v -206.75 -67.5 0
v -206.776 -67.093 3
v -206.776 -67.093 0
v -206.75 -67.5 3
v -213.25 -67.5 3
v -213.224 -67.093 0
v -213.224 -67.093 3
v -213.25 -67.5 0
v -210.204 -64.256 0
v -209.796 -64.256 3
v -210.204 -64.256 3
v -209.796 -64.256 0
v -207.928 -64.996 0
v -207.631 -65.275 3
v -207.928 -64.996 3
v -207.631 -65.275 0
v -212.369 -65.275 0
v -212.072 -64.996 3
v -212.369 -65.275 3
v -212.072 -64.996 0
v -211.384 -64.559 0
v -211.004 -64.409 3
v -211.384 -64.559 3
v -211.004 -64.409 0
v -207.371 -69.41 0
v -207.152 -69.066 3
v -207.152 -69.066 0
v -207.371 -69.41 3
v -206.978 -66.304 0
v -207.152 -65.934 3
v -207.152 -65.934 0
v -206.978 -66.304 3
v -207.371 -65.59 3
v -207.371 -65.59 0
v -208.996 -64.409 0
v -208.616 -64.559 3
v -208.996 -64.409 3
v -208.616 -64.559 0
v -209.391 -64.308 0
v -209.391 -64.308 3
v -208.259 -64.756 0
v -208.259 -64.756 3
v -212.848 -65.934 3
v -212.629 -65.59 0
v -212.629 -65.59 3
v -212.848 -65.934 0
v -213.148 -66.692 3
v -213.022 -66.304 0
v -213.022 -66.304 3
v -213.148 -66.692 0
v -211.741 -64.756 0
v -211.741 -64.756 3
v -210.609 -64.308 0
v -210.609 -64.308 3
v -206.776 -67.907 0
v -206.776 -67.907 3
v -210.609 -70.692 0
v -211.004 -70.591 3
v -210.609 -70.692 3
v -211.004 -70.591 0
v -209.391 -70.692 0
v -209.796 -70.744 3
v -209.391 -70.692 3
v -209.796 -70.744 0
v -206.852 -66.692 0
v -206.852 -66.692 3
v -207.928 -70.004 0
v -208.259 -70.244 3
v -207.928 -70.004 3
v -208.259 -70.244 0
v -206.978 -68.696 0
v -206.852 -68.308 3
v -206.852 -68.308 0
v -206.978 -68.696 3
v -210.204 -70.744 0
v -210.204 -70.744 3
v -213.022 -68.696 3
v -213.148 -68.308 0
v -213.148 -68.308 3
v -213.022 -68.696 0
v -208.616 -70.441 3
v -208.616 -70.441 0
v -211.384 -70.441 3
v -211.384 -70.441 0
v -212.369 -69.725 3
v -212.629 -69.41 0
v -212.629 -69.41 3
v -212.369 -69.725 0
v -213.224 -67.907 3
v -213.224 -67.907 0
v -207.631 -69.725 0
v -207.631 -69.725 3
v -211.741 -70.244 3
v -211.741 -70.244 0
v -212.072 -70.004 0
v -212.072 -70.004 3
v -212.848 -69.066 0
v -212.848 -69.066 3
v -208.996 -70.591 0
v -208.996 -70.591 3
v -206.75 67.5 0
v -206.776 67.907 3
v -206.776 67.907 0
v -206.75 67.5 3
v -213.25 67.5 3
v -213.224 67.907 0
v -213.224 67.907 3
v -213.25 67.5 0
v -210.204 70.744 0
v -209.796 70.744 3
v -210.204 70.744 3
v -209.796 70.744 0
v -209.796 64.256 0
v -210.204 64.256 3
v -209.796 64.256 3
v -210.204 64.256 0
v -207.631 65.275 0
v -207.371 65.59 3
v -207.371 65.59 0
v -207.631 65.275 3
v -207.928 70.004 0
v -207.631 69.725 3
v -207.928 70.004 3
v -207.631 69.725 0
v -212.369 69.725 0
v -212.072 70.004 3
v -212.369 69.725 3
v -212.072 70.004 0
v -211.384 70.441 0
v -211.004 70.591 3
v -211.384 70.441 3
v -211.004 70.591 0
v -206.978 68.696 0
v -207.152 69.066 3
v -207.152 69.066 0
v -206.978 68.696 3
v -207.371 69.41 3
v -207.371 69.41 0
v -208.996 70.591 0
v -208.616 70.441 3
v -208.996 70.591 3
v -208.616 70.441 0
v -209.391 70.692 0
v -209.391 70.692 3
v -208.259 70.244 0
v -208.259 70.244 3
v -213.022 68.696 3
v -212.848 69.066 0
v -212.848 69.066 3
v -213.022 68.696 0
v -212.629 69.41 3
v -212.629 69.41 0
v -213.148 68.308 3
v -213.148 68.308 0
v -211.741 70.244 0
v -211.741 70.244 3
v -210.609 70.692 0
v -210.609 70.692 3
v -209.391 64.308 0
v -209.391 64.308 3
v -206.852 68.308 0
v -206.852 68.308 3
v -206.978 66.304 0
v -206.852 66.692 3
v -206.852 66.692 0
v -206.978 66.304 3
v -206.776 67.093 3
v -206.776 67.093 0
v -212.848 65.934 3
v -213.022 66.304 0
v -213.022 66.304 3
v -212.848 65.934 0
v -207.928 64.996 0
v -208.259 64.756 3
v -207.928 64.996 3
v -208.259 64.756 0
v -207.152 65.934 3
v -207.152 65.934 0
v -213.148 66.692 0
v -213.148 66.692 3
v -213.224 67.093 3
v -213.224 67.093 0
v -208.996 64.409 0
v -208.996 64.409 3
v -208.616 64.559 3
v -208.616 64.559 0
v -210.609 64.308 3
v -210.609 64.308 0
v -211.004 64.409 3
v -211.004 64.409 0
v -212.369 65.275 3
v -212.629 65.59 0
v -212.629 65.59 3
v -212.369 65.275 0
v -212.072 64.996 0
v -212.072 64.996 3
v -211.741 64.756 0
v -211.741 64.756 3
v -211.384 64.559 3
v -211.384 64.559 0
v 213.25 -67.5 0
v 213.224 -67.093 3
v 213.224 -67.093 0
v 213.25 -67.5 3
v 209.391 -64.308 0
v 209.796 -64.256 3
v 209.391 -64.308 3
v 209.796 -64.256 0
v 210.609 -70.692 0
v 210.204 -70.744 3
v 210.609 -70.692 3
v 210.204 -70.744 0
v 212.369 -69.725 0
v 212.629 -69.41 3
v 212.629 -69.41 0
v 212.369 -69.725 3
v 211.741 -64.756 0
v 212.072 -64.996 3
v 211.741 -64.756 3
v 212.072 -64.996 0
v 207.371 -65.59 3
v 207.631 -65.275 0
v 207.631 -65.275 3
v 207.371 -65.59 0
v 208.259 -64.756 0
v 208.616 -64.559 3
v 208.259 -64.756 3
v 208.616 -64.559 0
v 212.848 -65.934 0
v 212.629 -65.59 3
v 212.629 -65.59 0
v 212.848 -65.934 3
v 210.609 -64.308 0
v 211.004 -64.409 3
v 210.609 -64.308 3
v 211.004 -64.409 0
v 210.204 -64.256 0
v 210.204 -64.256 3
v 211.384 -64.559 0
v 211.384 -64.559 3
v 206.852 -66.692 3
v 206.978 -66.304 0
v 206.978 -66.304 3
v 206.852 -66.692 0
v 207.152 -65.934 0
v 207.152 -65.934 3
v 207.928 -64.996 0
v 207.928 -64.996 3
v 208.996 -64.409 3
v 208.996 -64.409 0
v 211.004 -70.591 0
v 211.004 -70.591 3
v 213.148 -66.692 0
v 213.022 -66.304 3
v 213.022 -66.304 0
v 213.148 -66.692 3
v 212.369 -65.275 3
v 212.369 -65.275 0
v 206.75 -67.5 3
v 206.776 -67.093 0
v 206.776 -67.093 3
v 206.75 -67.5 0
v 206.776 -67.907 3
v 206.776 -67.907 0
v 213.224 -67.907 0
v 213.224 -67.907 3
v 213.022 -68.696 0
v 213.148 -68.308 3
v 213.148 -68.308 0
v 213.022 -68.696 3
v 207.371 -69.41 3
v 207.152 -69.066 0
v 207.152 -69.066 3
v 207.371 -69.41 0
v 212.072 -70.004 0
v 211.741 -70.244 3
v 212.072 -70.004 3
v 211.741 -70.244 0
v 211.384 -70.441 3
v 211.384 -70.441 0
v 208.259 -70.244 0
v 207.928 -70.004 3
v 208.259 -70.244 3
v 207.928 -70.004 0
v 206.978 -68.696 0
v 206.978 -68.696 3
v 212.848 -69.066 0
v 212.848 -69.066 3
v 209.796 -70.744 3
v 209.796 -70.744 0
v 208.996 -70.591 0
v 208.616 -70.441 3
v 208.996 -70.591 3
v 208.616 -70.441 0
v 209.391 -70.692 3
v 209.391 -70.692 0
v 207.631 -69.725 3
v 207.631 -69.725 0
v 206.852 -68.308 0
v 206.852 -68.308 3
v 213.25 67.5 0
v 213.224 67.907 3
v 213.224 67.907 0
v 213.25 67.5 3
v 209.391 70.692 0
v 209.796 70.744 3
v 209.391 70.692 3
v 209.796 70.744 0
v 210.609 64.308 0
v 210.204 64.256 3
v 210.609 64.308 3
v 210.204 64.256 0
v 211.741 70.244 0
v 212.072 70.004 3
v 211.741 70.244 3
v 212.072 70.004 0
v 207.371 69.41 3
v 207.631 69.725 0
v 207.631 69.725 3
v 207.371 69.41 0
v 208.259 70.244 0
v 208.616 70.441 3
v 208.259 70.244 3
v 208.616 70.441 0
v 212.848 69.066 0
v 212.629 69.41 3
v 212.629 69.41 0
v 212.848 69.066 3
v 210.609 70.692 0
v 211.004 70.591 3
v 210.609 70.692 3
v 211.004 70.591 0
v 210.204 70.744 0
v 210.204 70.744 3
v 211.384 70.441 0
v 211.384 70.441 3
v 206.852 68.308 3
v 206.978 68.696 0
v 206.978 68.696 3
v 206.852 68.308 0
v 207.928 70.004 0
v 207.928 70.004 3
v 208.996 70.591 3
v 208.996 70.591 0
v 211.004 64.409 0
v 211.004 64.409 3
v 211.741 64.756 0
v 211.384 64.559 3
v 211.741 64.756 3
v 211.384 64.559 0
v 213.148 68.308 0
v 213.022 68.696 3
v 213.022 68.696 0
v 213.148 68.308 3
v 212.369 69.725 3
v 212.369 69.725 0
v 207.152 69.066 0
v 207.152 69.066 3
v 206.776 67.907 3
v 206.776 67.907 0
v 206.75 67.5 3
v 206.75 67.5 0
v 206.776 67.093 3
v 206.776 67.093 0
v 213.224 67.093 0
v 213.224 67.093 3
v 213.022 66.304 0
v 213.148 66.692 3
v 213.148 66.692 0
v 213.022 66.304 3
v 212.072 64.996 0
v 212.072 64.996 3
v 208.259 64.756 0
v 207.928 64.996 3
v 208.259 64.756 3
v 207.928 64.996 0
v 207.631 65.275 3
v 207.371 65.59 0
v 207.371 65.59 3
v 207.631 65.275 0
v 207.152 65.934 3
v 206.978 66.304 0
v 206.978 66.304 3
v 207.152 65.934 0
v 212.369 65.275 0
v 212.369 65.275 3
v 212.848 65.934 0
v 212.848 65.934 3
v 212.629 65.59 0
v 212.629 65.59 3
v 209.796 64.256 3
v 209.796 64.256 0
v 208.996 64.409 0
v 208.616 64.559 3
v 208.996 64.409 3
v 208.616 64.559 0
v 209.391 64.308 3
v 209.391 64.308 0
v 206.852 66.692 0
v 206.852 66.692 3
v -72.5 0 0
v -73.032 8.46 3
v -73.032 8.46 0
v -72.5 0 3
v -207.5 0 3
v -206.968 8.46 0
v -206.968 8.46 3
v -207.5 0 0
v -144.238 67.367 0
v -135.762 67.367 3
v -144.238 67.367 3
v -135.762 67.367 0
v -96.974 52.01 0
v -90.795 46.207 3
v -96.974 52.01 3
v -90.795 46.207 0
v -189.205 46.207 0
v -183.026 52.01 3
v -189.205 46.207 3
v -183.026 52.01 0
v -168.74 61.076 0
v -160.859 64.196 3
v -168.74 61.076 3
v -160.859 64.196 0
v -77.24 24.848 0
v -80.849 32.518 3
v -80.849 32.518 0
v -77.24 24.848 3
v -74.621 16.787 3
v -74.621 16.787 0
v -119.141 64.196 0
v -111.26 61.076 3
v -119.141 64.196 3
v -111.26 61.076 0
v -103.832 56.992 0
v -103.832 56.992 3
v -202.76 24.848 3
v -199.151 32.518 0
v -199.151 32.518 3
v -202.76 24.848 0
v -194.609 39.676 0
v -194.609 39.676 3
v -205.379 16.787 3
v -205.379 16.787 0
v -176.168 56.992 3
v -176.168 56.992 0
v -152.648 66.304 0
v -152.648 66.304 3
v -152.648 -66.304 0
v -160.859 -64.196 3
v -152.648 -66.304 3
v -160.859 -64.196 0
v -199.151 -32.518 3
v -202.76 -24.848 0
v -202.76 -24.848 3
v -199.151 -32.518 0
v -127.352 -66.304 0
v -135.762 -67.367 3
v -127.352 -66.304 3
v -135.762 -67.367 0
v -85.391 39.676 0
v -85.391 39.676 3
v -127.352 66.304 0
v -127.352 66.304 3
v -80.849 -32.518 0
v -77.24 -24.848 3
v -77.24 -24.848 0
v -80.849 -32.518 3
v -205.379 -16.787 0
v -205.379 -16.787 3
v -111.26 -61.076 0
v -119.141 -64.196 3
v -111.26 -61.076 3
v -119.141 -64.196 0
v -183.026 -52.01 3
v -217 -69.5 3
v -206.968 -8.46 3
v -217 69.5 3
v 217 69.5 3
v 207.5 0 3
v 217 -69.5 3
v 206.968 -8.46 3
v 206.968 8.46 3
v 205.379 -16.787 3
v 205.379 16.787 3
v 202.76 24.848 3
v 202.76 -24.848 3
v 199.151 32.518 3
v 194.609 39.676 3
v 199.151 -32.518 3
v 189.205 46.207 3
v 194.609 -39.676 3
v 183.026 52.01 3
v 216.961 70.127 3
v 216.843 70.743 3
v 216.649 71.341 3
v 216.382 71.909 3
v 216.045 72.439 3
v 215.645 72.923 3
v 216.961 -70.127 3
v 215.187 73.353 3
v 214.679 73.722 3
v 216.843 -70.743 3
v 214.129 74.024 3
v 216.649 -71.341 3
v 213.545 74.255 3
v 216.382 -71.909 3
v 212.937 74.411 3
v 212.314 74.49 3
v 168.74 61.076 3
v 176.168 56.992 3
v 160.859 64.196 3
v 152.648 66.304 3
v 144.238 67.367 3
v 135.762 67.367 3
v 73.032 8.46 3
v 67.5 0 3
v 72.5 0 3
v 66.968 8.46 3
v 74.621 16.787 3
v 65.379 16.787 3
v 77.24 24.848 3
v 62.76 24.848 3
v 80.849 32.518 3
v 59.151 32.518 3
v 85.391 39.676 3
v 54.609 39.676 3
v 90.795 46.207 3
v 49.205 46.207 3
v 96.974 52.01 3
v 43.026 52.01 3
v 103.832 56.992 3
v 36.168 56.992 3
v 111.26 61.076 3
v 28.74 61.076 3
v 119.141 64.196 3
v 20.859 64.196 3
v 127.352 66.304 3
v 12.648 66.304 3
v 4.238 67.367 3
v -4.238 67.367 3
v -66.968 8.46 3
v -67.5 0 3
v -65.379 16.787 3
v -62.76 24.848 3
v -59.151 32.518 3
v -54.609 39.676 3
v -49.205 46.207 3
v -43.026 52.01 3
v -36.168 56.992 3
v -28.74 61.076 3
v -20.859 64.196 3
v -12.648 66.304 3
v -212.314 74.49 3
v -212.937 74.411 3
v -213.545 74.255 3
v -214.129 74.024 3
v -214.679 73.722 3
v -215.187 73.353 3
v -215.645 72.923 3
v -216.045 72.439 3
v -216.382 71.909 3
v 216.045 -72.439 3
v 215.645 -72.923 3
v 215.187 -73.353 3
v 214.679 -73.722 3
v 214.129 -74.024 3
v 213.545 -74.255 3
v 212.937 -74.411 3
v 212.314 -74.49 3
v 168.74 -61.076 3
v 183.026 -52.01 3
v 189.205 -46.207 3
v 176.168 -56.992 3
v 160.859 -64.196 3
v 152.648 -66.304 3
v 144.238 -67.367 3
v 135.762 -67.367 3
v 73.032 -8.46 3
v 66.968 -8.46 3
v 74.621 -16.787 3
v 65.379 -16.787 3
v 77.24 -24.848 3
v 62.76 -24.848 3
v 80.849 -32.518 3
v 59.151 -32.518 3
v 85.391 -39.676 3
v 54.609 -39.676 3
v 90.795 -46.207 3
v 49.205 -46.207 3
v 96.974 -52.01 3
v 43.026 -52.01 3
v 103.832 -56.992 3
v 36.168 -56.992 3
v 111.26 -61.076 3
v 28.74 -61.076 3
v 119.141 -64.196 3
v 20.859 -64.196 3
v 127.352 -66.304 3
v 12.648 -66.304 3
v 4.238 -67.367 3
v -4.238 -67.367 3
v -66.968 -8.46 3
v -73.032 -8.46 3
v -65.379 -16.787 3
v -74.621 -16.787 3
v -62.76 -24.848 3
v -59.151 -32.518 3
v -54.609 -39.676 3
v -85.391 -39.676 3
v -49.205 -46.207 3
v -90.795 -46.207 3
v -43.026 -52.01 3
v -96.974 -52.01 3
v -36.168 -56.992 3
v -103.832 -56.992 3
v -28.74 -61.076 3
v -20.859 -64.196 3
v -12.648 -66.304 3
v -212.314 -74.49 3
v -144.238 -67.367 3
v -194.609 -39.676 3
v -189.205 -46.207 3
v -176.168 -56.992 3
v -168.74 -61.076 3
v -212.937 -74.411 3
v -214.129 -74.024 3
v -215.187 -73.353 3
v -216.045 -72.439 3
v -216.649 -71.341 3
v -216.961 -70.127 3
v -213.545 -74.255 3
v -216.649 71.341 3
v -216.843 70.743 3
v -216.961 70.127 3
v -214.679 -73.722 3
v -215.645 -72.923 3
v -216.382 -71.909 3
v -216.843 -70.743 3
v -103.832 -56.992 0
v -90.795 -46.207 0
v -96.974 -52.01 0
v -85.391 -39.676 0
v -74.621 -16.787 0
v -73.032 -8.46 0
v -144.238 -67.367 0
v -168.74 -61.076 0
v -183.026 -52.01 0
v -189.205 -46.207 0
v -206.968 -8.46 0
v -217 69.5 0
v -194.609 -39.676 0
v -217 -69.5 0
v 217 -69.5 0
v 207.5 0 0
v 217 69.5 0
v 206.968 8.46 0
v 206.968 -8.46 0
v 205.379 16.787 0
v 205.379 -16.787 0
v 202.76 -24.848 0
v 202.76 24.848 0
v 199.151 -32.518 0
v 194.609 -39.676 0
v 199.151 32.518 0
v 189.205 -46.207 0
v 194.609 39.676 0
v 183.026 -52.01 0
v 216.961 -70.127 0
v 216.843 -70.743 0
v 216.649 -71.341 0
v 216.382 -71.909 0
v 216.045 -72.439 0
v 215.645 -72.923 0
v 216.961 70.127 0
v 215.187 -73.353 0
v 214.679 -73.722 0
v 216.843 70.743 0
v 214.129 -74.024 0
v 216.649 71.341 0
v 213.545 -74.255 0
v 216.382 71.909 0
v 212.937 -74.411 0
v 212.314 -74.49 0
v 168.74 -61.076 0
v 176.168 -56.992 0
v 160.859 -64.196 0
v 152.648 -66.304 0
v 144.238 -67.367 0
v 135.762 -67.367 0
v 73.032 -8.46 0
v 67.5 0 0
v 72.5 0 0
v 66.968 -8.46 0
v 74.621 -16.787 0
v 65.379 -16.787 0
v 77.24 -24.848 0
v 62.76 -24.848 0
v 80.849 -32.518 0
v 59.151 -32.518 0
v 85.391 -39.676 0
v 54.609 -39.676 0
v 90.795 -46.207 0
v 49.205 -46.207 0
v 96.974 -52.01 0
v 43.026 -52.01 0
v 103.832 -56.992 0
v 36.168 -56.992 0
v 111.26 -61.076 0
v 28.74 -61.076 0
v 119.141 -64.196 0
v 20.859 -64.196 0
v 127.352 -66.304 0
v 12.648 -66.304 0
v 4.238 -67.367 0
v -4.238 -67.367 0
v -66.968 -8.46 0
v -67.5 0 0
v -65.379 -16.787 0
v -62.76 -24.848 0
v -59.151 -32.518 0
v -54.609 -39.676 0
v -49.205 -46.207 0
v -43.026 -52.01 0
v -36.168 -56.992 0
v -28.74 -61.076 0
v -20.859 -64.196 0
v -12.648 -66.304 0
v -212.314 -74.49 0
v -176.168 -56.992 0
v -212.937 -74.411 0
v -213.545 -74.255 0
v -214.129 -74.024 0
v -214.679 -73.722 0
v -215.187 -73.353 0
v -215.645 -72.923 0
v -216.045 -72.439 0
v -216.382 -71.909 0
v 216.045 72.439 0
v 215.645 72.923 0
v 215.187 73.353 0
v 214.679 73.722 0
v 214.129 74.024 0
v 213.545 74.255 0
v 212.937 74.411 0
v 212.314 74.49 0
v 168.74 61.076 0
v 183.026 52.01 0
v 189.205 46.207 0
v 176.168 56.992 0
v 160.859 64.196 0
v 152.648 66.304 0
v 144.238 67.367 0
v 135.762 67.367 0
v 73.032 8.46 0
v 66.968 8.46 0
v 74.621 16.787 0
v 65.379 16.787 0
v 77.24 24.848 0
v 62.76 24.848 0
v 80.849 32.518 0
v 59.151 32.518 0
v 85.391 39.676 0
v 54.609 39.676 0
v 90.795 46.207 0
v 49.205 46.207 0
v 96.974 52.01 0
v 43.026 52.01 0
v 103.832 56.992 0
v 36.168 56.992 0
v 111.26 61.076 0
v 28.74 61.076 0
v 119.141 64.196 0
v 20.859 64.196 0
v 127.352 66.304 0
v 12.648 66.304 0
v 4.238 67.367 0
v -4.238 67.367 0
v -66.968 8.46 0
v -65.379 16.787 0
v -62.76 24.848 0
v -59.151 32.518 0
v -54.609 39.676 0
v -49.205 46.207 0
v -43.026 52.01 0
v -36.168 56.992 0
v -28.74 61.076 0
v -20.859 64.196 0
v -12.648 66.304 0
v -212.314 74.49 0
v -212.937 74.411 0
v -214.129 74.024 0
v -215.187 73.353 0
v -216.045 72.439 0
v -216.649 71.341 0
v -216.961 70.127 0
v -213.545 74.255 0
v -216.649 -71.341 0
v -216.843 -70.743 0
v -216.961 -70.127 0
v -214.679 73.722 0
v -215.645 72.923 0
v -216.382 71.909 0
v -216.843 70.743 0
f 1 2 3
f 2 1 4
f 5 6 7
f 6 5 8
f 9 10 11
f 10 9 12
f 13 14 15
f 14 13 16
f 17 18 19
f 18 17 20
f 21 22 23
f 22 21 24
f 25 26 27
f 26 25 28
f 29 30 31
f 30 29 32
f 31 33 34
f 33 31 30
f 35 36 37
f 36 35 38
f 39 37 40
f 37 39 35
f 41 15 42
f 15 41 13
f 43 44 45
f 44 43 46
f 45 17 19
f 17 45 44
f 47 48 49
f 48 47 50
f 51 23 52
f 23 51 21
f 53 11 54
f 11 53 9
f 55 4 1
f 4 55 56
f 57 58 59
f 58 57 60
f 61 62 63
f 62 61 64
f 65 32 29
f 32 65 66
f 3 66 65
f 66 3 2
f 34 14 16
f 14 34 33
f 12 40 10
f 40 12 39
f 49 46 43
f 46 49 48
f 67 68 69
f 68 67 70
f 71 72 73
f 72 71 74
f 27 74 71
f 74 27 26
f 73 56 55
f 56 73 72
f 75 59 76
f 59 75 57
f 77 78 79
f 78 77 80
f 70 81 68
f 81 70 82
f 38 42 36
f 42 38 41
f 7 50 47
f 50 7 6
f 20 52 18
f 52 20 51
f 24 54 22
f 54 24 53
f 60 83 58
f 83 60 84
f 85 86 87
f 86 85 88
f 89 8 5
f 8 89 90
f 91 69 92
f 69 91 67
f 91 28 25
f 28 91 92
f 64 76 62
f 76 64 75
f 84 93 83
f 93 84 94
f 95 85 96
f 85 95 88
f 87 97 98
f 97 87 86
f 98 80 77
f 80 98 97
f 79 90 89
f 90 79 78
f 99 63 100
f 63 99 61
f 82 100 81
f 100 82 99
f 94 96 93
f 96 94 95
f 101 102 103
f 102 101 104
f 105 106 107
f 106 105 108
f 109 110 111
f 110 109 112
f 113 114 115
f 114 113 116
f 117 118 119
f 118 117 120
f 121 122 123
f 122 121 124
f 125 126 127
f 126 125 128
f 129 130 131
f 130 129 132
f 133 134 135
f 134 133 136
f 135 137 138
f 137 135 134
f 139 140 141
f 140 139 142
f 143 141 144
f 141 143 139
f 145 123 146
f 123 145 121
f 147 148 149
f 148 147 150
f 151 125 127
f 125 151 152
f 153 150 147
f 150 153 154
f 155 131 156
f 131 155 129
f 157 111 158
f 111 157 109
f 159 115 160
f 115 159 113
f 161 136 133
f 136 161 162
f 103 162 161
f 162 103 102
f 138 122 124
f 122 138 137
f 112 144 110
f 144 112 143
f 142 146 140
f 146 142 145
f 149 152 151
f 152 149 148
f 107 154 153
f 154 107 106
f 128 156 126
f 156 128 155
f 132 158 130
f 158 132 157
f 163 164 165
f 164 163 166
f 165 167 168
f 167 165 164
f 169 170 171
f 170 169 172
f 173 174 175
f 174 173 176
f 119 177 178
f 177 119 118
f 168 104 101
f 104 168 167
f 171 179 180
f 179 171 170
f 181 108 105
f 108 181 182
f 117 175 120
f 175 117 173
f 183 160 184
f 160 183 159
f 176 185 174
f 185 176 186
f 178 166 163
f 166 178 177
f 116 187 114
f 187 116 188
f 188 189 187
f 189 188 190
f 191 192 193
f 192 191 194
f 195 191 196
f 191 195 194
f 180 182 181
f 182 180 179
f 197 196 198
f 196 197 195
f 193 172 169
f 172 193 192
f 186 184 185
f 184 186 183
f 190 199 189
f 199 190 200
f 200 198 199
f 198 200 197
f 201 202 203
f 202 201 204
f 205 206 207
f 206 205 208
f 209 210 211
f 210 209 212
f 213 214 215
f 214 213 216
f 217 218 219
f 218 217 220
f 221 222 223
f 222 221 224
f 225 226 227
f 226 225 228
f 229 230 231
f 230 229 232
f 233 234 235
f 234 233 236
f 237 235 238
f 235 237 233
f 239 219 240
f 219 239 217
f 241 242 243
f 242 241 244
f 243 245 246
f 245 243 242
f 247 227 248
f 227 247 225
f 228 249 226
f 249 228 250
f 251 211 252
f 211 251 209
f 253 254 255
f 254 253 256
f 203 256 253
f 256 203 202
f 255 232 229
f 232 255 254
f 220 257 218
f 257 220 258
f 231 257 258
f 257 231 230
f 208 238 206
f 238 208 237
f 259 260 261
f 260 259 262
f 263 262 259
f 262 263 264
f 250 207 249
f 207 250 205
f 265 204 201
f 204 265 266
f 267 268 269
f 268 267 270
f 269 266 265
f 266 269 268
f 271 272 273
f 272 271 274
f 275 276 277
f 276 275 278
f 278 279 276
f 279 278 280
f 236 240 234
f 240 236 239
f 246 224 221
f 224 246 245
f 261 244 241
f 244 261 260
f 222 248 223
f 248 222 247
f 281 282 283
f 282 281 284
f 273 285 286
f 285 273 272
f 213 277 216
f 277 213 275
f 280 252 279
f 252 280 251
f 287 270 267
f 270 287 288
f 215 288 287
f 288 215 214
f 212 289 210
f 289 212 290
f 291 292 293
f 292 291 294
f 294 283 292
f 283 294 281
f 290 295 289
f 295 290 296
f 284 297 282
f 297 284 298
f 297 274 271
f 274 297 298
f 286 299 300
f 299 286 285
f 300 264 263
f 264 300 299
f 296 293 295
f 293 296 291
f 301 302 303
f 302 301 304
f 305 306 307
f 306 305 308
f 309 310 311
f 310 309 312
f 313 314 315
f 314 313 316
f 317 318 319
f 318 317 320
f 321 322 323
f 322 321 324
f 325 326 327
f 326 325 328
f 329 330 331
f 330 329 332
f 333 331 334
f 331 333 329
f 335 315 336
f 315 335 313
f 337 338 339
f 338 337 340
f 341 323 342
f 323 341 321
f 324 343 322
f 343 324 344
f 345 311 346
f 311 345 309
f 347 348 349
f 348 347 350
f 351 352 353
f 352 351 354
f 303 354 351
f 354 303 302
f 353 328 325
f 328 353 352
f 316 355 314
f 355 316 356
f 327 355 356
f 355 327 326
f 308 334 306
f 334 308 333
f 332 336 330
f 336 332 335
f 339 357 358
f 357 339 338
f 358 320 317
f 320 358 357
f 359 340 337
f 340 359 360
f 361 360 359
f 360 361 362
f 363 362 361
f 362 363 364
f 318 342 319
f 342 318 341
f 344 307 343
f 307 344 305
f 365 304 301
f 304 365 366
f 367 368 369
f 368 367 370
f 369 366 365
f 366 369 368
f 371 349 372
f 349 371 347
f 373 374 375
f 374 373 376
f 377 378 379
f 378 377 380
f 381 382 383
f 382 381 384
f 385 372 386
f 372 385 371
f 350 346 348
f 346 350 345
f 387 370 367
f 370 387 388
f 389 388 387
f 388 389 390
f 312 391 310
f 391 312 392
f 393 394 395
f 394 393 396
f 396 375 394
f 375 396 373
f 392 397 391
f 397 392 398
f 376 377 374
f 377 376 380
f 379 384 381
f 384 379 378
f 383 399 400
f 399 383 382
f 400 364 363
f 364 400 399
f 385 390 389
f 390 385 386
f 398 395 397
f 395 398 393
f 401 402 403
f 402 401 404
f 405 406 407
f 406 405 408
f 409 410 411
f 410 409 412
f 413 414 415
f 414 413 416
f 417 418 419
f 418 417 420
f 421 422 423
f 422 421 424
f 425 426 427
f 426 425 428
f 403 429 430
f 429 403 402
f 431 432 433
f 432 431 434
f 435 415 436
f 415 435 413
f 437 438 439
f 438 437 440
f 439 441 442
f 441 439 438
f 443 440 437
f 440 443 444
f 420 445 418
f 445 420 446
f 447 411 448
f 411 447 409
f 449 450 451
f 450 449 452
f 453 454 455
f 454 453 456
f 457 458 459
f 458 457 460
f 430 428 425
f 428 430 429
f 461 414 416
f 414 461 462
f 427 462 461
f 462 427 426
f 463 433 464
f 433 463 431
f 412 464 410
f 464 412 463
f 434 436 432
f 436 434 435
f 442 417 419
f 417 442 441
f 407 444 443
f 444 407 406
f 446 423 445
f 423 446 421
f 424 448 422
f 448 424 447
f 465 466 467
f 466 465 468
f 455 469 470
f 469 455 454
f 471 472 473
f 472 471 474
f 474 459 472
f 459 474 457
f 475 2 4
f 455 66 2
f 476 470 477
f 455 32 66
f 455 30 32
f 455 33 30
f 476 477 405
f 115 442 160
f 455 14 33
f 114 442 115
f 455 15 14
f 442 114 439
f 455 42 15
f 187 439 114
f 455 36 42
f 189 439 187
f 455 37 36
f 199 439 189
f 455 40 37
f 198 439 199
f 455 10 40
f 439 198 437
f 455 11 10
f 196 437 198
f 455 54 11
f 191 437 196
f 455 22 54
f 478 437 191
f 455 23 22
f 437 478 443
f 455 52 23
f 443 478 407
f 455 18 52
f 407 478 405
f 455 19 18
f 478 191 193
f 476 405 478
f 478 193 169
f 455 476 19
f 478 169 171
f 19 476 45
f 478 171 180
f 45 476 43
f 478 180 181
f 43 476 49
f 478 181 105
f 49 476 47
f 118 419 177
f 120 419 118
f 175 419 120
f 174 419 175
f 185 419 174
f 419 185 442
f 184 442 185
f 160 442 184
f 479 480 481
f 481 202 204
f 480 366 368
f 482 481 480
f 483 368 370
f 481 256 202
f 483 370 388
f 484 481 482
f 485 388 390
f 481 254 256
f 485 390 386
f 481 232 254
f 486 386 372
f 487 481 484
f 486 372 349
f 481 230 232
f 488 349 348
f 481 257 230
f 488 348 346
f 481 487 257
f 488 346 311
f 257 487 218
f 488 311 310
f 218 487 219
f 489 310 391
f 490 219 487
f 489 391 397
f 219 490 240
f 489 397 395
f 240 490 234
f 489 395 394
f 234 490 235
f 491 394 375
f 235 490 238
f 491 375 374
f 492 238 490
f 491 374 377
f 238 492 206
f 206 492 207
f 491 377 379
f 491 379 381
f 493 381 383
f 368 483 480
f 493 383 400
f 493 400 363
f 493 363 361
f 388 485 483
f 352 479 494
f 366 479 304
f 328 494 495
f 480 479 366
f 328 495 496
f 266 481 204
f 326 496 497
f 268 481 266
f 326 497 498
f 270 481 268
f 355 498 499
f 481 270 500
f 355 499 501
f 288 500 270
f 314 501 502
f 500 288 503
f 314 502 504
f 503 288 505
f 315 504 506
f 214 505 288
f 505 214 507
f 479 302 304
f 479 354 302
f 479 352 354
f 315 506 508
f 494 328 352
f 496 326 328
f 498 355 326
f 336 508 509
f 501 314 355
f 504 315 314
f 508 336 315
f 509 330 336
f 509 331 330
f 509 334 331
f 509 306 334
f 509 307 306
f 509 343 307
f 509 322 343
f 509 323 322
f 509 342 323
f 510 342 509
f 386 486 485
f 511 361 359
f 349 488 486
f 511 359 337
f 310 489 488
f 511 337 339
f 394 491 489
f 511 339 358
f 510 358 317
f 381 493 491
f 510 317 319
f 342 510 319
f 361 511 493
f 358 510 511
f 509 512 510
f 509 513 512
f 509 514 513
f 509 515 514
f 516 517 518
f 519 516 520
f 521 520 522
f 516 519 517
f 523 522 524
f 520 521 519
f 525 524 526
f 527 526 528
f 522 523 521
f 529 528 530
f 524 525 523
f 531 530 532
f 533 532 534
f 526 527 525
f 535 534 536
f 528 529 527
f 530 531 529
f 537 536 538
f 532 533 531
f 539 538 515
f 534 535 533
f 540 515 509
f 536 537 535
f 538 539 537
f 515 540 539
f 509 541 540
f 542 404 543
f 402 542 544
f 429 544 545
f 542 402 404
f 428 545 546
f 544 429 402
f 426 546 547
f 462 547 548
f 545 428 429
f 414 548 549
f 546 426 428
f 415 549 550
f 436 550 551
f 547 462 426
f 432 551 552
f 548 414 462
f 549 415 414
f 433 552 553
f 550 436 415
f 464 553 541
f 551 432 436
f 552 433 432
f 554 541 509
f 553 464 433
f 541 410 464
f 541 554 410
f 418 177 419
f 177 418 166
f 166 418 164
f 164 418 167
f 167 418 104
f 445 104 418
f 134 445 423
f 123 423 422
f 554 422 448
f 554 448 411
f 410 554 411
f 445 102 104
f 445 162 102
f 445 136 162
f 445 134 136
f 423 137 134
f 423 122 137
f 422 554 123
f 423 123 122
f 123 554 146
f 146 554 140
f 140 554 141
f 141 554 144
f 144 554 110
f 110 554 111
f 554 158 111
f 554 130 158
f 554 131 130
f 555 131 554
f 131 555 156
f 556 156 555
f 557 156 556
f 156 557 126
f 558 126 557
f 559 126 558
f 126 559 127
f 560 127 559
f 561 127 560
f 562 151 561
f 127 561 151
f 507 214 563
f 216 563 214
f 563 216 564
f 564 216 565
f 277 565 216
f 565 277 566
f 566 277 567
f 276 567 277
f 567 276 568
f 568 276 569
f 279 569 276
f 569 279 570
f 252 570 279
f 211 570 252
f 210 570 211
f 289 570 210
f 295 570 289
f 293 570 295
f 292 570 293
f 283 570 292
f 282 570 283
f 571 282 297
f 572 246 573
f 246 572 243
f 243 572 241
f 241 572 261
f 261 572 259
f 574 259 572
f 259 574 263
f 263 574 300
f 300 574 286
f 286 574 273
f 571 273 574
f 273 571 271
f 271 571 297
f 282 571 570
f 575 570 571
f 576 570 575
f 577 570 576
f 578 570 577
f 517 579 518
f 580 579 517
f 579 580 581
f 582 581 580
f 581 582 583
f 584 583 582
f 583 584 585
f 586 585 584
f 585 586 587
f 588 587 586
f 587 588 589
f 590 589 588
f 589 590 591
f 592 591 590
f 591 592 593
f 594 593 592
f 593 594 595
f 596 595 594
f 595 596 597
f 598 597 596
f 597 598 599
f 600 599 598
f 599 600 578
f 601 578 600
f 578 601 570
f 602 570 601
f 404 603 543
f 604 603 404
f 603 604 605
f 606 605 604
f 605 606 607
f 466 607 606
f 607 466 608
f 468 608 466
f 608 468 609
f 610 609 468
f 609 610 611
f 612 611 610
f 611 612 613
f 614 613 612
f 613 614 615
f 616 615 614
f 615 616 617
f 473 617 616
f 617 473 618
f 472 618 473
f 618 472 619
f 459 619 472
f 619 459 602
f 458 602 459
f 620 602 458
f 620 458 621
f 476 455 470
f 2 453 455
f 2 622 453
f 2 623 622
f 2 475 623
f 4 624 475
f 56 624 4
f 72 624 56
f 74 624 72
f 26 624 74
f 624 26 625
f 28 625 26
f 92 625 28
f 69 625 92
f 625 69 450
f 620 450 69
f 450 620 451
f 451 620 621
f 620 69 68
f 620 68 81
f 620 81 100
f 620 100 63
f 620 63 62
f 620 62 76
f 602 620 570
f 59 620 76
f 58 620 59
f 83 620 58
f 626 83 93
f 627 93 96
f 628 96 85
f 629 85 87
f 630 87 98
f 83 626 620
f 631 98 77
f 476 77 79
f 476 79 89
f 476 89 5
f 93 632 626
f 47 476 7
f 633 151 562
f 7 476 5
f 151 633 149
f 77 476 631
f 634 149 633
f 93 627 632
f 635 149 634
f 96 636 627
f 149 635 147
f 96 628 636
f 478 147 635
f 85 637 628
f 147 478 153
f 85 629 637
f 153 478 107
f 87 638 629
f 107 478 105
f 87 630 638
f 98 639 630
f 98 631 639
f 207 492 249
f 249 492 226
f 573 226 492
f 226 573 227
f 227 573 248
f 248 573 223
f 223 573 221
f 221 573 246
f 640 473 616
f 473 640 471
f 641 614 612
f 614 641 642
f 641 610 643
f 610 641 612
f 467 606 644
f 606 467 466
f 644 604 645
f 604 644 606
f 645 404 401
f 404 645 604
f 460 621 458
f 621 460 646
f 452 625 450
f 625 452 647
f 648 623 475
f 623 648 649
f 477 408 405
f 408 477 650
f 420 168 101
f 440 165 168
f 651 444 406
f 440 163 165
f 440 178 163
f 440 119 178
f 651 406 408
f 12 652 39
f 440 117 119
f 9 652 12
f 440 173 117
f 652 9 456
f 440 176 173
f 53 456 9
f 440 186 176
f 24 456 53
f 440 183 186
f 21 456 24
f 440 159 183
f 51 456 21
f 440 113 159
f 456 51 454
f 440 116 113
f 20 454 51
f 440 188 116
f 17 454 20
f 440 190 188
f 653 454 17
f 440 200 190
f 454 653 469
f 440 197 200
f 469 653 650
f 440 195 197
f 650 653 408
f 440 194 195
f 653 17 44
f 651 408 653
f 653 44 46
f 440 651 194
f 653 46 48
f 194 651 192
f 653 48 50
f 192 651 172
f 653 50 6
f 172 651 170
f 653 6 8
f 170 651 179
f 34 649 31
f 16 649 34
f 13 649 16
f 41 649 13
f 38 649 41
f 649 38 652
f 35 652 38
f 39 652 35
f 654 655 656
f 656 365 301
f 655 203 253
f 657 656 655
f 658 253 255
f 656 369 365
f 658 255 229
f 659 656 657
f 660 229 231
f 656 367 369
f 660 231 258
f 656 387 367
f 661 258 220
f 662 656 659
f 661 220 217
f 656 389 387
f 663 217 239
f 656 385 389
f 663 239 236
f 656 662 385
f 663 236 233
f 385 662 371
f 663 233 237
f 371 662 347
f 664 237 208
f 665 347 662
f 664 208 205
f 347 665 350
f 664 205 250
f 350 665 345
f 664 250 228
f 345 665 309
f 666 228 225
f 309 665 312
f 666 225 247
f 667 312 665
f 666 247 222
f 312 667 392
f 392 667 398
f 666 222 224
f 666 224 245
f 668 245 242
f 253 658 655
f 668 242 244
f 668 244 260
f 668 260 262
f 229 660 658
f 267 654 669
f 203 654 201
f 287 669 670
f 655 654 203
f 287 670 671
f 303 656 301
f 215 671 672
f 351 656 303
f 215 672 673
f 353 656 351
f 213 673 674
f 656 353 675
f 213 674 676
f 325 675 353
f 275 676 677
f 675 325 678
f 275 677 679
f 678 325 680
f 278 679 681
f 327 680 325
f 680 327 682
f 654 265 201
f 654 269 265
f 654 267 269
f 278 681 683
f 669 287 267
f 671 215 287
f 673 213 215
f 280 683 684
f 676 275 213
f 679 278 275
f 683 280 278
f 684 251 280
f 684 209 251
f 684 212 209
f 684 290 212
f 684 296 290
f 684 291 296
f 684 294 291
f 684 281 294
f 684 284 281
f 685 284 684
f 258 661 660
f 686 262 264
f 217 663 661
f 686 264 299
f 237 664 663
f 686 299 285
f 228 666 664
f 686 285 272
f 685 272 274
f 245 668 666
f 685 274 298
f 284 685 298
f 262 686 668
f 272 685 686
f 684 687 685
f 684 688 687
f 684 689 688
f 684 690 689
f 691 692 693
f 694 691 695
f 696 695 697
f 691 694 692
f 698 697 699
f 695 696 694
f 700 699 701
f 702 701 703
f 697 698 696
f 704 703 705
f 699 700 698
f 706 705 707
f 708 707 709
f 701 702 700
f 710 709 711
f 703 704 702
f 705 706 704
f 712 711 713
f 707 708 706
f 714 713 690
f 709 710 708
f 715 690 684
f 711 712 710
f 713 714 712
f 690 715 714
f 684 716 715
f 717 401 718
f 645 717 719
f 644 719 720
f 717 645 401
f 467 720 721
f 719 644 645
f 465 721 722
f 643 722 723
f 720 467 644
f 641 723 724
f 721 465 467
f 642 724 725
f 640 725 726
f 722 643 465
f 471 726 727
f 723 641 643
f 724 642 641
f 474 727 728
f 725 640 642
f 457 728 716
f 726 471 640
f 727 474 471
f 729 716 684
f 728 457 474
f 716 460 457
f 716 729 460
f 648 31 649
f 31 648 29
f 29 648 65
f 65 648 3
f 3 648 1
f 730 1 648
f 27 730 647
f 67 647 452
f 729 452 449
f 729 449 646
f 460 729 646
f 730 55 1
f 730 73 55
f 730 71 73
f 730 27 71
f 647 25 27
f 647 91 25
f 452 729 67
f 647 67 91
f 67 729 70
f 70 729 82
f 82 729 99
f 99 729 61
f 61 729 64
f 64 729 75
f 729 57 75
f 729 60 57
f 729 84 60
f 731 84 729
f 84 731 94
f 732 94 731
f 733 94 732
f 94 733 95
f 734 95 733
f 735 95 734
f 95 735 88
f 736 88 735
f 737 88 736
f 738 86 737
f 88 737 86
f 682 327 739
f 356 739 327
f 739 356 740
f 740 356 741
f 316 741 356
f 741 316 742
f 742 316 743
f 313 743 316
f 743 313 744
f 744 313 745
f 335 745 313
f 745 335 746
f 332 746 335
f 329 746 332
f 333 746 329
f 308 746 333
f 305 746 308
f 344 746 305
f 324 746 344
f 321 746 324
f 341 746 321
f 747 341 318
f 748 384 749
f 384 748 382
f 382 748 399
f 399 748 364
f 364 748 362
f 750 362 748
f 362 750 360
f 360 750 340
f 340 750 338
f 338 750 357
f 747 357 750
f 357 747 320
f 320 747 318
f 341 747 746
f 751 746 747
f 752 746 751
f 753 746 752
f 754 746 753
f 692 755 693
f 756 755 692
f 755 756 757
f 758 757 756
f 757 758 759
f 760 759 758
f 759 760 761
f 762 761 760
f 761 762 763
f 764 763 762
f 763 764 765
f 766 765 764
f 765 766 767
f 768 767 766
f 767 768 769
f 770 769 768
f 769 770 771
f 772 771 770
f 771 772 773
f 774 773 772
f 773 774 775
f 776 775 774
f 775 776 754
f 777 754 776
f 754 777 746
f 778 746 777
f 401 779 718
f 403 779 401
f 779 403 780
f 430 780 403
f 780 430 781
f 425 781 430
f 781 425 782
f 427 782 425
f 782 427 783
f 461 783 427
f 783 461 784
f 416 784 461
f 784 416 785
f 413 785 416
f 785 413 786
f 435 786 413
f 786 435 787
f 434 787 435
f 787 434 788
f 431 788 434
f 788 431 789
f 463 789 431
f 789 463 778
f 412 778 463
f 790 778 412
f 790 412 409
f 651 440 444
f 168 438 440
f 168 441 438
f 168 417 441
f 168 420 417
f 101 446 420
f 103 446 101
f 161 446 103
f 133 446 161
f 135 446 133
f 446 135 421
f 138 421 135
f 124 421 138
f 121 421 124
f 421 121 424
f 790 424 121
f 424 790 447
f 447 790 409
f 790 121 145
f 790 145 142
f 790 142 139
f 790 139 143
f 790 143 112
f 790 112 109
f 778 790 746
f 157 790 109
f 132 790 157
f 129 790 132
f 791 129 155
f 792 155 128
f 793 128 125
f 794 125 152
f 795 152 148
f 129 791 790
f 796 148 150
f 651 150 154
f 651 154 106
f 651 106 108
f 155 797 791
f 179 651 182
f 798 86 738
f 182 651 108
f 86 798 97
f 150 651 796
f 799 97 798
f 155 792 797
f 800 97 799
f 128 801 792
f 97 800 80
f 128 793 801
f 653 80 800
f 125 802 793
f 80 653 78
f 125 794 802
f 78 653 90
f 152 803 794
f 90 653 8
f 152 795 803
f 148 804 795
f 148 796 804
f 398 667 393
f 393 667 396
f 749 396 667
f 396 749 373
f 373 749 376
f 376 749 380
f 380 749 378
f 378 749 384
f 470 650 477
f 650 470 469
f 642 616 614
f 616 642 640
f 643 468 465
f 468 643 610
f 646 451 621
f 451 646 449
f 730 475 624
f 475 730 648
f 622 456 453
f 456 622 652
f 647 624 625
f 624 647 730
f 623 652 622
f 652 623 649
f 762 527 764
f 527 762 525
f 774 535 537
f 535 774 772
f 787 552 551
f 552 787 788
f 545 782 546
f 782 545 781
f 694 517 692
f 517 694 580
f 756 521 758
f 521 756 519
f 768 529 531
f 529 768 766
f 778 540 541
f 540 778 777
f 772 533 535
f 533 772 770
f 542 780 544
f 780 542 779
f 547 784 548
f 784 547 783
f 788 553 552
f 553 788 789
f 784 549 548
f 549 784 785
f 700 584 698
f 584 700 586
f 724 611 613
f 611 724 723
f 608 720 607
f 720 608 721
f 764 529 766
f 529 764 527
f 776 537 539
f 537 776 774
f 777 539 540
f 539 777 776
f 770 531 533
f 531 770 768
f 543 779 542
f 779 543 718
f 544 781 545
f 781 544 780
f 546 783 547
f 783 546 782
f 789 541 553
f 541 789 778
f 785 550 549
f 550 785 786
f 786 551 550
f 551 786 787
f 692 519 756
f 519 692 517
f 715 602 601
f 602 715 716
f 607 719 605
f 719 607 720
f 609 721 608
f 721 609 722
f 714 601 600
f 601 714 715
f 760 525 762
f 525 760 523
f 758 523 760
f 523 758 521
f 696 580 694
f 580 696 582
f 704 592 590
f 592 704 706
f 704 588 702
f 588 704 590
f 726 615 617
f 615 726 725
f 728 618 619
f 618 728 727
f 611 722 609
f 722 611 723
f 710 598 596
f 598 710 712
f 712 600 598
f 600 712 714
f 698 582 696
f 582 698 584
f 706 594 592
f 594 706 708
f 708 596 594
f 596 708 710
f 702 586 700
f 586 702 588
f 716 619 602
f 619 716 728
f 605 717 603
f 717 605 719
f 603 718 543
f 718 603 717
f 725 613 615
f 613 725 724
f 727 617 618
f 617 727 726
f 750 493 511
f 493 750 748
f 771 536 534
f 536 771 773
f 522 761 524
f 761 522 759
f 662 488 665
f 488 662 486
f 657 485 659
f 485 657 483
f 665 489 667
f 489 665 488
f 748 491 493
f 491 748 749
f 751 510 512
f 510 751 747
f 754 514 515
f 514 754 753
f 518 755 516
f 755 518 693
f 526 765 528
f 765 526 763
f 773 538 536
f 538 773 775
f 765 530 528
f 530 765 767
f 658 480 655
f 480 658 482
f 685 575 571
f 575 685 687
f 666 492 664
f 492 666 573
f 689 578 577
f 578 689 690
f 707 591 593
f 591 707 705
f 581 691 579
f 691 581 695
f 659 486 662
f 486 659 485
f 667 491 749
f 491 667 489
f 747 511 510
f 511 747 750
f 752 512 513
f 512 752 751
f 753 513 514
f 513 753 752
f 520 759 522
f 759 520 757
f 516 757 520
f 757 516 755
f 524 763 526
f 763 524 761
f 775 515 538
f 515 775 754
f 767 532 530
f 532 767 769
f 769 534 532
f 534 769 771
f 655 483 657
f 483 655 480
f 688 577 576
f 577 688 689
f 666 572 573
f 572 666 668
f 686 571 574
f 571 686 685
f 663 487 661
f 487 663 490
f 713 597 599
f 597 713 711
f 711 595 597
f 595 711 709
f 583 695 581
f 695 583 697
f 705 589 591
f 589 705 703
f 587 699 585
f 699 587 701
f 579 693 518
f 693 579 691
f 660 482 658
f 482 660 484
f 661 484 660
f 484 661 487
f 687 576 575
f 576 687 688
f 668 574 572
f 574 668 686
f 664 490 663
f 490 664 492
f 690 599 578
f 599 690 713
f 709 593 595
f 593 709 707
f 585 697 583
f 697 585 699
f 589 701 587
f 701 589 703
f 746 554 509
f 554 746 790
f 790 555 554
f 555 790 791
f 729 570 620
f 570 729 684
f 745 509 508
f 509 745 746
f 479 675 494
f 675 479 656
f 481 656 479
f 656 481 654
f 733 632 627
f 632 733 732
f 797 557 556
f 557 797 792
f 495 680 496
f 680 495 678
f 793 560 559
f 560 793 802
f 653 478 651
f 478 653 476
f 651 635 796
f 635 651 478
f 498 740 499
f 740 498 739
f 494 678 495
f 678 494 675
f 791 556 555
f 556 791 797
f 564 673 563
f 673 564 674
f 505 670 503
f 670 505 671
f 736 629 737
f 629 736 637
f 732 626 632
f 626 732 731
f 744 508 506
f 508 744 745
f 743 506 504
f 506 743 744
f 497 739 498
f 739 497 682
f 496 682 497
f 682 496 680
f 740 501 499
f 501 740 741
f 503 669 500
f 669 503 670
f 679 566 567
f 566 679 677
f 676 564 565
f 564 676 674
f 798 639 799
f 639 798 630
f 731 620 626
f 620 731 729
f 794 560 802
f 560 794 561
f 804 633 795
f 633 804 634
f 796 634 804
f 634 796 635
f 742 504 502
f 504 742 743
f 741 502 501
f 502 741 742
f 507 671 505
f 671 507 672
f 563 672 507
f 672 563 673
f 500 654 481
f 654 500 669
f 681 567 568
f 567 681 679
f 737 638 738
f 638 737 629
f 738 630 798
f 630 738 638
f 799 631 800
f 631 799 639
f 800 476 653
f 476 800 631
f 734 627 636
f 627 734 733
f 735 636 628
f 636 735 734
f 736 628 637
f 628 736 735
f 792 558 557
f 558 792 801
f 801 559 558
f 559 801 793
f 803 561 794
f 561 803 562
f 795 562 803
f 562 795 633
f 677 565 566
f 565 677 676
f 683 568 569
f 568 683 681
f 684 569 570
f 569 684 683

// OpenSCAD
$fn = 50;


difference() {
	union() {
		hull() {
			translate(v = [-212.0000000000, 69.5000000000, 0]) {
				cylinder(h = 3, r = 5);
			}
			translate(v = [212.0000000000, 69.5000000000, 0]) {
				cylinder(h = 3, r = 5);
			}
			translate(v = [-212.0000000000, -69.5000000000, 0]) {
				cylinder(h = 3, r = 5);
			}
			translate(v = [212.0000000000, -69.5000000000, 0]) {
				cylinder(h = 3, r = 5);
			}
		}
	}
	union() {
		#translate(v = [-210.0000000000, -67.5000000000, -100.0000000000]) {
			cylinder(h = 200, r = 3.2500000000);
		}
		#translate(v = [-210.0000000000, 67.5000000000, -100.0000000000]) {
			cylinder(h = 200, r = 3.2500000000);
		}
		#translate(v = [210.0000000000, -67.5000000000, -100.0000000000]) {
			cylinder(h = 200, r = 3.2500000000);
		}
		#translate(v = [210.0000000000, 67.5000000000, -100.0000000000]) {
			cylinder(h = 200, r = 3.2500000000);
		}
		#translate(v = [-140.0000000000, 0, 0]) {
			cylinder(h = 3, r = 67.5000000000);
		}
		#cylinder(h = 3, r = 67.5000000000);
		#translate(v = [140.0000000000, 0, 0]) {
			cylinder(h = 3, r = 67.5000000000);
		}
	}
}
